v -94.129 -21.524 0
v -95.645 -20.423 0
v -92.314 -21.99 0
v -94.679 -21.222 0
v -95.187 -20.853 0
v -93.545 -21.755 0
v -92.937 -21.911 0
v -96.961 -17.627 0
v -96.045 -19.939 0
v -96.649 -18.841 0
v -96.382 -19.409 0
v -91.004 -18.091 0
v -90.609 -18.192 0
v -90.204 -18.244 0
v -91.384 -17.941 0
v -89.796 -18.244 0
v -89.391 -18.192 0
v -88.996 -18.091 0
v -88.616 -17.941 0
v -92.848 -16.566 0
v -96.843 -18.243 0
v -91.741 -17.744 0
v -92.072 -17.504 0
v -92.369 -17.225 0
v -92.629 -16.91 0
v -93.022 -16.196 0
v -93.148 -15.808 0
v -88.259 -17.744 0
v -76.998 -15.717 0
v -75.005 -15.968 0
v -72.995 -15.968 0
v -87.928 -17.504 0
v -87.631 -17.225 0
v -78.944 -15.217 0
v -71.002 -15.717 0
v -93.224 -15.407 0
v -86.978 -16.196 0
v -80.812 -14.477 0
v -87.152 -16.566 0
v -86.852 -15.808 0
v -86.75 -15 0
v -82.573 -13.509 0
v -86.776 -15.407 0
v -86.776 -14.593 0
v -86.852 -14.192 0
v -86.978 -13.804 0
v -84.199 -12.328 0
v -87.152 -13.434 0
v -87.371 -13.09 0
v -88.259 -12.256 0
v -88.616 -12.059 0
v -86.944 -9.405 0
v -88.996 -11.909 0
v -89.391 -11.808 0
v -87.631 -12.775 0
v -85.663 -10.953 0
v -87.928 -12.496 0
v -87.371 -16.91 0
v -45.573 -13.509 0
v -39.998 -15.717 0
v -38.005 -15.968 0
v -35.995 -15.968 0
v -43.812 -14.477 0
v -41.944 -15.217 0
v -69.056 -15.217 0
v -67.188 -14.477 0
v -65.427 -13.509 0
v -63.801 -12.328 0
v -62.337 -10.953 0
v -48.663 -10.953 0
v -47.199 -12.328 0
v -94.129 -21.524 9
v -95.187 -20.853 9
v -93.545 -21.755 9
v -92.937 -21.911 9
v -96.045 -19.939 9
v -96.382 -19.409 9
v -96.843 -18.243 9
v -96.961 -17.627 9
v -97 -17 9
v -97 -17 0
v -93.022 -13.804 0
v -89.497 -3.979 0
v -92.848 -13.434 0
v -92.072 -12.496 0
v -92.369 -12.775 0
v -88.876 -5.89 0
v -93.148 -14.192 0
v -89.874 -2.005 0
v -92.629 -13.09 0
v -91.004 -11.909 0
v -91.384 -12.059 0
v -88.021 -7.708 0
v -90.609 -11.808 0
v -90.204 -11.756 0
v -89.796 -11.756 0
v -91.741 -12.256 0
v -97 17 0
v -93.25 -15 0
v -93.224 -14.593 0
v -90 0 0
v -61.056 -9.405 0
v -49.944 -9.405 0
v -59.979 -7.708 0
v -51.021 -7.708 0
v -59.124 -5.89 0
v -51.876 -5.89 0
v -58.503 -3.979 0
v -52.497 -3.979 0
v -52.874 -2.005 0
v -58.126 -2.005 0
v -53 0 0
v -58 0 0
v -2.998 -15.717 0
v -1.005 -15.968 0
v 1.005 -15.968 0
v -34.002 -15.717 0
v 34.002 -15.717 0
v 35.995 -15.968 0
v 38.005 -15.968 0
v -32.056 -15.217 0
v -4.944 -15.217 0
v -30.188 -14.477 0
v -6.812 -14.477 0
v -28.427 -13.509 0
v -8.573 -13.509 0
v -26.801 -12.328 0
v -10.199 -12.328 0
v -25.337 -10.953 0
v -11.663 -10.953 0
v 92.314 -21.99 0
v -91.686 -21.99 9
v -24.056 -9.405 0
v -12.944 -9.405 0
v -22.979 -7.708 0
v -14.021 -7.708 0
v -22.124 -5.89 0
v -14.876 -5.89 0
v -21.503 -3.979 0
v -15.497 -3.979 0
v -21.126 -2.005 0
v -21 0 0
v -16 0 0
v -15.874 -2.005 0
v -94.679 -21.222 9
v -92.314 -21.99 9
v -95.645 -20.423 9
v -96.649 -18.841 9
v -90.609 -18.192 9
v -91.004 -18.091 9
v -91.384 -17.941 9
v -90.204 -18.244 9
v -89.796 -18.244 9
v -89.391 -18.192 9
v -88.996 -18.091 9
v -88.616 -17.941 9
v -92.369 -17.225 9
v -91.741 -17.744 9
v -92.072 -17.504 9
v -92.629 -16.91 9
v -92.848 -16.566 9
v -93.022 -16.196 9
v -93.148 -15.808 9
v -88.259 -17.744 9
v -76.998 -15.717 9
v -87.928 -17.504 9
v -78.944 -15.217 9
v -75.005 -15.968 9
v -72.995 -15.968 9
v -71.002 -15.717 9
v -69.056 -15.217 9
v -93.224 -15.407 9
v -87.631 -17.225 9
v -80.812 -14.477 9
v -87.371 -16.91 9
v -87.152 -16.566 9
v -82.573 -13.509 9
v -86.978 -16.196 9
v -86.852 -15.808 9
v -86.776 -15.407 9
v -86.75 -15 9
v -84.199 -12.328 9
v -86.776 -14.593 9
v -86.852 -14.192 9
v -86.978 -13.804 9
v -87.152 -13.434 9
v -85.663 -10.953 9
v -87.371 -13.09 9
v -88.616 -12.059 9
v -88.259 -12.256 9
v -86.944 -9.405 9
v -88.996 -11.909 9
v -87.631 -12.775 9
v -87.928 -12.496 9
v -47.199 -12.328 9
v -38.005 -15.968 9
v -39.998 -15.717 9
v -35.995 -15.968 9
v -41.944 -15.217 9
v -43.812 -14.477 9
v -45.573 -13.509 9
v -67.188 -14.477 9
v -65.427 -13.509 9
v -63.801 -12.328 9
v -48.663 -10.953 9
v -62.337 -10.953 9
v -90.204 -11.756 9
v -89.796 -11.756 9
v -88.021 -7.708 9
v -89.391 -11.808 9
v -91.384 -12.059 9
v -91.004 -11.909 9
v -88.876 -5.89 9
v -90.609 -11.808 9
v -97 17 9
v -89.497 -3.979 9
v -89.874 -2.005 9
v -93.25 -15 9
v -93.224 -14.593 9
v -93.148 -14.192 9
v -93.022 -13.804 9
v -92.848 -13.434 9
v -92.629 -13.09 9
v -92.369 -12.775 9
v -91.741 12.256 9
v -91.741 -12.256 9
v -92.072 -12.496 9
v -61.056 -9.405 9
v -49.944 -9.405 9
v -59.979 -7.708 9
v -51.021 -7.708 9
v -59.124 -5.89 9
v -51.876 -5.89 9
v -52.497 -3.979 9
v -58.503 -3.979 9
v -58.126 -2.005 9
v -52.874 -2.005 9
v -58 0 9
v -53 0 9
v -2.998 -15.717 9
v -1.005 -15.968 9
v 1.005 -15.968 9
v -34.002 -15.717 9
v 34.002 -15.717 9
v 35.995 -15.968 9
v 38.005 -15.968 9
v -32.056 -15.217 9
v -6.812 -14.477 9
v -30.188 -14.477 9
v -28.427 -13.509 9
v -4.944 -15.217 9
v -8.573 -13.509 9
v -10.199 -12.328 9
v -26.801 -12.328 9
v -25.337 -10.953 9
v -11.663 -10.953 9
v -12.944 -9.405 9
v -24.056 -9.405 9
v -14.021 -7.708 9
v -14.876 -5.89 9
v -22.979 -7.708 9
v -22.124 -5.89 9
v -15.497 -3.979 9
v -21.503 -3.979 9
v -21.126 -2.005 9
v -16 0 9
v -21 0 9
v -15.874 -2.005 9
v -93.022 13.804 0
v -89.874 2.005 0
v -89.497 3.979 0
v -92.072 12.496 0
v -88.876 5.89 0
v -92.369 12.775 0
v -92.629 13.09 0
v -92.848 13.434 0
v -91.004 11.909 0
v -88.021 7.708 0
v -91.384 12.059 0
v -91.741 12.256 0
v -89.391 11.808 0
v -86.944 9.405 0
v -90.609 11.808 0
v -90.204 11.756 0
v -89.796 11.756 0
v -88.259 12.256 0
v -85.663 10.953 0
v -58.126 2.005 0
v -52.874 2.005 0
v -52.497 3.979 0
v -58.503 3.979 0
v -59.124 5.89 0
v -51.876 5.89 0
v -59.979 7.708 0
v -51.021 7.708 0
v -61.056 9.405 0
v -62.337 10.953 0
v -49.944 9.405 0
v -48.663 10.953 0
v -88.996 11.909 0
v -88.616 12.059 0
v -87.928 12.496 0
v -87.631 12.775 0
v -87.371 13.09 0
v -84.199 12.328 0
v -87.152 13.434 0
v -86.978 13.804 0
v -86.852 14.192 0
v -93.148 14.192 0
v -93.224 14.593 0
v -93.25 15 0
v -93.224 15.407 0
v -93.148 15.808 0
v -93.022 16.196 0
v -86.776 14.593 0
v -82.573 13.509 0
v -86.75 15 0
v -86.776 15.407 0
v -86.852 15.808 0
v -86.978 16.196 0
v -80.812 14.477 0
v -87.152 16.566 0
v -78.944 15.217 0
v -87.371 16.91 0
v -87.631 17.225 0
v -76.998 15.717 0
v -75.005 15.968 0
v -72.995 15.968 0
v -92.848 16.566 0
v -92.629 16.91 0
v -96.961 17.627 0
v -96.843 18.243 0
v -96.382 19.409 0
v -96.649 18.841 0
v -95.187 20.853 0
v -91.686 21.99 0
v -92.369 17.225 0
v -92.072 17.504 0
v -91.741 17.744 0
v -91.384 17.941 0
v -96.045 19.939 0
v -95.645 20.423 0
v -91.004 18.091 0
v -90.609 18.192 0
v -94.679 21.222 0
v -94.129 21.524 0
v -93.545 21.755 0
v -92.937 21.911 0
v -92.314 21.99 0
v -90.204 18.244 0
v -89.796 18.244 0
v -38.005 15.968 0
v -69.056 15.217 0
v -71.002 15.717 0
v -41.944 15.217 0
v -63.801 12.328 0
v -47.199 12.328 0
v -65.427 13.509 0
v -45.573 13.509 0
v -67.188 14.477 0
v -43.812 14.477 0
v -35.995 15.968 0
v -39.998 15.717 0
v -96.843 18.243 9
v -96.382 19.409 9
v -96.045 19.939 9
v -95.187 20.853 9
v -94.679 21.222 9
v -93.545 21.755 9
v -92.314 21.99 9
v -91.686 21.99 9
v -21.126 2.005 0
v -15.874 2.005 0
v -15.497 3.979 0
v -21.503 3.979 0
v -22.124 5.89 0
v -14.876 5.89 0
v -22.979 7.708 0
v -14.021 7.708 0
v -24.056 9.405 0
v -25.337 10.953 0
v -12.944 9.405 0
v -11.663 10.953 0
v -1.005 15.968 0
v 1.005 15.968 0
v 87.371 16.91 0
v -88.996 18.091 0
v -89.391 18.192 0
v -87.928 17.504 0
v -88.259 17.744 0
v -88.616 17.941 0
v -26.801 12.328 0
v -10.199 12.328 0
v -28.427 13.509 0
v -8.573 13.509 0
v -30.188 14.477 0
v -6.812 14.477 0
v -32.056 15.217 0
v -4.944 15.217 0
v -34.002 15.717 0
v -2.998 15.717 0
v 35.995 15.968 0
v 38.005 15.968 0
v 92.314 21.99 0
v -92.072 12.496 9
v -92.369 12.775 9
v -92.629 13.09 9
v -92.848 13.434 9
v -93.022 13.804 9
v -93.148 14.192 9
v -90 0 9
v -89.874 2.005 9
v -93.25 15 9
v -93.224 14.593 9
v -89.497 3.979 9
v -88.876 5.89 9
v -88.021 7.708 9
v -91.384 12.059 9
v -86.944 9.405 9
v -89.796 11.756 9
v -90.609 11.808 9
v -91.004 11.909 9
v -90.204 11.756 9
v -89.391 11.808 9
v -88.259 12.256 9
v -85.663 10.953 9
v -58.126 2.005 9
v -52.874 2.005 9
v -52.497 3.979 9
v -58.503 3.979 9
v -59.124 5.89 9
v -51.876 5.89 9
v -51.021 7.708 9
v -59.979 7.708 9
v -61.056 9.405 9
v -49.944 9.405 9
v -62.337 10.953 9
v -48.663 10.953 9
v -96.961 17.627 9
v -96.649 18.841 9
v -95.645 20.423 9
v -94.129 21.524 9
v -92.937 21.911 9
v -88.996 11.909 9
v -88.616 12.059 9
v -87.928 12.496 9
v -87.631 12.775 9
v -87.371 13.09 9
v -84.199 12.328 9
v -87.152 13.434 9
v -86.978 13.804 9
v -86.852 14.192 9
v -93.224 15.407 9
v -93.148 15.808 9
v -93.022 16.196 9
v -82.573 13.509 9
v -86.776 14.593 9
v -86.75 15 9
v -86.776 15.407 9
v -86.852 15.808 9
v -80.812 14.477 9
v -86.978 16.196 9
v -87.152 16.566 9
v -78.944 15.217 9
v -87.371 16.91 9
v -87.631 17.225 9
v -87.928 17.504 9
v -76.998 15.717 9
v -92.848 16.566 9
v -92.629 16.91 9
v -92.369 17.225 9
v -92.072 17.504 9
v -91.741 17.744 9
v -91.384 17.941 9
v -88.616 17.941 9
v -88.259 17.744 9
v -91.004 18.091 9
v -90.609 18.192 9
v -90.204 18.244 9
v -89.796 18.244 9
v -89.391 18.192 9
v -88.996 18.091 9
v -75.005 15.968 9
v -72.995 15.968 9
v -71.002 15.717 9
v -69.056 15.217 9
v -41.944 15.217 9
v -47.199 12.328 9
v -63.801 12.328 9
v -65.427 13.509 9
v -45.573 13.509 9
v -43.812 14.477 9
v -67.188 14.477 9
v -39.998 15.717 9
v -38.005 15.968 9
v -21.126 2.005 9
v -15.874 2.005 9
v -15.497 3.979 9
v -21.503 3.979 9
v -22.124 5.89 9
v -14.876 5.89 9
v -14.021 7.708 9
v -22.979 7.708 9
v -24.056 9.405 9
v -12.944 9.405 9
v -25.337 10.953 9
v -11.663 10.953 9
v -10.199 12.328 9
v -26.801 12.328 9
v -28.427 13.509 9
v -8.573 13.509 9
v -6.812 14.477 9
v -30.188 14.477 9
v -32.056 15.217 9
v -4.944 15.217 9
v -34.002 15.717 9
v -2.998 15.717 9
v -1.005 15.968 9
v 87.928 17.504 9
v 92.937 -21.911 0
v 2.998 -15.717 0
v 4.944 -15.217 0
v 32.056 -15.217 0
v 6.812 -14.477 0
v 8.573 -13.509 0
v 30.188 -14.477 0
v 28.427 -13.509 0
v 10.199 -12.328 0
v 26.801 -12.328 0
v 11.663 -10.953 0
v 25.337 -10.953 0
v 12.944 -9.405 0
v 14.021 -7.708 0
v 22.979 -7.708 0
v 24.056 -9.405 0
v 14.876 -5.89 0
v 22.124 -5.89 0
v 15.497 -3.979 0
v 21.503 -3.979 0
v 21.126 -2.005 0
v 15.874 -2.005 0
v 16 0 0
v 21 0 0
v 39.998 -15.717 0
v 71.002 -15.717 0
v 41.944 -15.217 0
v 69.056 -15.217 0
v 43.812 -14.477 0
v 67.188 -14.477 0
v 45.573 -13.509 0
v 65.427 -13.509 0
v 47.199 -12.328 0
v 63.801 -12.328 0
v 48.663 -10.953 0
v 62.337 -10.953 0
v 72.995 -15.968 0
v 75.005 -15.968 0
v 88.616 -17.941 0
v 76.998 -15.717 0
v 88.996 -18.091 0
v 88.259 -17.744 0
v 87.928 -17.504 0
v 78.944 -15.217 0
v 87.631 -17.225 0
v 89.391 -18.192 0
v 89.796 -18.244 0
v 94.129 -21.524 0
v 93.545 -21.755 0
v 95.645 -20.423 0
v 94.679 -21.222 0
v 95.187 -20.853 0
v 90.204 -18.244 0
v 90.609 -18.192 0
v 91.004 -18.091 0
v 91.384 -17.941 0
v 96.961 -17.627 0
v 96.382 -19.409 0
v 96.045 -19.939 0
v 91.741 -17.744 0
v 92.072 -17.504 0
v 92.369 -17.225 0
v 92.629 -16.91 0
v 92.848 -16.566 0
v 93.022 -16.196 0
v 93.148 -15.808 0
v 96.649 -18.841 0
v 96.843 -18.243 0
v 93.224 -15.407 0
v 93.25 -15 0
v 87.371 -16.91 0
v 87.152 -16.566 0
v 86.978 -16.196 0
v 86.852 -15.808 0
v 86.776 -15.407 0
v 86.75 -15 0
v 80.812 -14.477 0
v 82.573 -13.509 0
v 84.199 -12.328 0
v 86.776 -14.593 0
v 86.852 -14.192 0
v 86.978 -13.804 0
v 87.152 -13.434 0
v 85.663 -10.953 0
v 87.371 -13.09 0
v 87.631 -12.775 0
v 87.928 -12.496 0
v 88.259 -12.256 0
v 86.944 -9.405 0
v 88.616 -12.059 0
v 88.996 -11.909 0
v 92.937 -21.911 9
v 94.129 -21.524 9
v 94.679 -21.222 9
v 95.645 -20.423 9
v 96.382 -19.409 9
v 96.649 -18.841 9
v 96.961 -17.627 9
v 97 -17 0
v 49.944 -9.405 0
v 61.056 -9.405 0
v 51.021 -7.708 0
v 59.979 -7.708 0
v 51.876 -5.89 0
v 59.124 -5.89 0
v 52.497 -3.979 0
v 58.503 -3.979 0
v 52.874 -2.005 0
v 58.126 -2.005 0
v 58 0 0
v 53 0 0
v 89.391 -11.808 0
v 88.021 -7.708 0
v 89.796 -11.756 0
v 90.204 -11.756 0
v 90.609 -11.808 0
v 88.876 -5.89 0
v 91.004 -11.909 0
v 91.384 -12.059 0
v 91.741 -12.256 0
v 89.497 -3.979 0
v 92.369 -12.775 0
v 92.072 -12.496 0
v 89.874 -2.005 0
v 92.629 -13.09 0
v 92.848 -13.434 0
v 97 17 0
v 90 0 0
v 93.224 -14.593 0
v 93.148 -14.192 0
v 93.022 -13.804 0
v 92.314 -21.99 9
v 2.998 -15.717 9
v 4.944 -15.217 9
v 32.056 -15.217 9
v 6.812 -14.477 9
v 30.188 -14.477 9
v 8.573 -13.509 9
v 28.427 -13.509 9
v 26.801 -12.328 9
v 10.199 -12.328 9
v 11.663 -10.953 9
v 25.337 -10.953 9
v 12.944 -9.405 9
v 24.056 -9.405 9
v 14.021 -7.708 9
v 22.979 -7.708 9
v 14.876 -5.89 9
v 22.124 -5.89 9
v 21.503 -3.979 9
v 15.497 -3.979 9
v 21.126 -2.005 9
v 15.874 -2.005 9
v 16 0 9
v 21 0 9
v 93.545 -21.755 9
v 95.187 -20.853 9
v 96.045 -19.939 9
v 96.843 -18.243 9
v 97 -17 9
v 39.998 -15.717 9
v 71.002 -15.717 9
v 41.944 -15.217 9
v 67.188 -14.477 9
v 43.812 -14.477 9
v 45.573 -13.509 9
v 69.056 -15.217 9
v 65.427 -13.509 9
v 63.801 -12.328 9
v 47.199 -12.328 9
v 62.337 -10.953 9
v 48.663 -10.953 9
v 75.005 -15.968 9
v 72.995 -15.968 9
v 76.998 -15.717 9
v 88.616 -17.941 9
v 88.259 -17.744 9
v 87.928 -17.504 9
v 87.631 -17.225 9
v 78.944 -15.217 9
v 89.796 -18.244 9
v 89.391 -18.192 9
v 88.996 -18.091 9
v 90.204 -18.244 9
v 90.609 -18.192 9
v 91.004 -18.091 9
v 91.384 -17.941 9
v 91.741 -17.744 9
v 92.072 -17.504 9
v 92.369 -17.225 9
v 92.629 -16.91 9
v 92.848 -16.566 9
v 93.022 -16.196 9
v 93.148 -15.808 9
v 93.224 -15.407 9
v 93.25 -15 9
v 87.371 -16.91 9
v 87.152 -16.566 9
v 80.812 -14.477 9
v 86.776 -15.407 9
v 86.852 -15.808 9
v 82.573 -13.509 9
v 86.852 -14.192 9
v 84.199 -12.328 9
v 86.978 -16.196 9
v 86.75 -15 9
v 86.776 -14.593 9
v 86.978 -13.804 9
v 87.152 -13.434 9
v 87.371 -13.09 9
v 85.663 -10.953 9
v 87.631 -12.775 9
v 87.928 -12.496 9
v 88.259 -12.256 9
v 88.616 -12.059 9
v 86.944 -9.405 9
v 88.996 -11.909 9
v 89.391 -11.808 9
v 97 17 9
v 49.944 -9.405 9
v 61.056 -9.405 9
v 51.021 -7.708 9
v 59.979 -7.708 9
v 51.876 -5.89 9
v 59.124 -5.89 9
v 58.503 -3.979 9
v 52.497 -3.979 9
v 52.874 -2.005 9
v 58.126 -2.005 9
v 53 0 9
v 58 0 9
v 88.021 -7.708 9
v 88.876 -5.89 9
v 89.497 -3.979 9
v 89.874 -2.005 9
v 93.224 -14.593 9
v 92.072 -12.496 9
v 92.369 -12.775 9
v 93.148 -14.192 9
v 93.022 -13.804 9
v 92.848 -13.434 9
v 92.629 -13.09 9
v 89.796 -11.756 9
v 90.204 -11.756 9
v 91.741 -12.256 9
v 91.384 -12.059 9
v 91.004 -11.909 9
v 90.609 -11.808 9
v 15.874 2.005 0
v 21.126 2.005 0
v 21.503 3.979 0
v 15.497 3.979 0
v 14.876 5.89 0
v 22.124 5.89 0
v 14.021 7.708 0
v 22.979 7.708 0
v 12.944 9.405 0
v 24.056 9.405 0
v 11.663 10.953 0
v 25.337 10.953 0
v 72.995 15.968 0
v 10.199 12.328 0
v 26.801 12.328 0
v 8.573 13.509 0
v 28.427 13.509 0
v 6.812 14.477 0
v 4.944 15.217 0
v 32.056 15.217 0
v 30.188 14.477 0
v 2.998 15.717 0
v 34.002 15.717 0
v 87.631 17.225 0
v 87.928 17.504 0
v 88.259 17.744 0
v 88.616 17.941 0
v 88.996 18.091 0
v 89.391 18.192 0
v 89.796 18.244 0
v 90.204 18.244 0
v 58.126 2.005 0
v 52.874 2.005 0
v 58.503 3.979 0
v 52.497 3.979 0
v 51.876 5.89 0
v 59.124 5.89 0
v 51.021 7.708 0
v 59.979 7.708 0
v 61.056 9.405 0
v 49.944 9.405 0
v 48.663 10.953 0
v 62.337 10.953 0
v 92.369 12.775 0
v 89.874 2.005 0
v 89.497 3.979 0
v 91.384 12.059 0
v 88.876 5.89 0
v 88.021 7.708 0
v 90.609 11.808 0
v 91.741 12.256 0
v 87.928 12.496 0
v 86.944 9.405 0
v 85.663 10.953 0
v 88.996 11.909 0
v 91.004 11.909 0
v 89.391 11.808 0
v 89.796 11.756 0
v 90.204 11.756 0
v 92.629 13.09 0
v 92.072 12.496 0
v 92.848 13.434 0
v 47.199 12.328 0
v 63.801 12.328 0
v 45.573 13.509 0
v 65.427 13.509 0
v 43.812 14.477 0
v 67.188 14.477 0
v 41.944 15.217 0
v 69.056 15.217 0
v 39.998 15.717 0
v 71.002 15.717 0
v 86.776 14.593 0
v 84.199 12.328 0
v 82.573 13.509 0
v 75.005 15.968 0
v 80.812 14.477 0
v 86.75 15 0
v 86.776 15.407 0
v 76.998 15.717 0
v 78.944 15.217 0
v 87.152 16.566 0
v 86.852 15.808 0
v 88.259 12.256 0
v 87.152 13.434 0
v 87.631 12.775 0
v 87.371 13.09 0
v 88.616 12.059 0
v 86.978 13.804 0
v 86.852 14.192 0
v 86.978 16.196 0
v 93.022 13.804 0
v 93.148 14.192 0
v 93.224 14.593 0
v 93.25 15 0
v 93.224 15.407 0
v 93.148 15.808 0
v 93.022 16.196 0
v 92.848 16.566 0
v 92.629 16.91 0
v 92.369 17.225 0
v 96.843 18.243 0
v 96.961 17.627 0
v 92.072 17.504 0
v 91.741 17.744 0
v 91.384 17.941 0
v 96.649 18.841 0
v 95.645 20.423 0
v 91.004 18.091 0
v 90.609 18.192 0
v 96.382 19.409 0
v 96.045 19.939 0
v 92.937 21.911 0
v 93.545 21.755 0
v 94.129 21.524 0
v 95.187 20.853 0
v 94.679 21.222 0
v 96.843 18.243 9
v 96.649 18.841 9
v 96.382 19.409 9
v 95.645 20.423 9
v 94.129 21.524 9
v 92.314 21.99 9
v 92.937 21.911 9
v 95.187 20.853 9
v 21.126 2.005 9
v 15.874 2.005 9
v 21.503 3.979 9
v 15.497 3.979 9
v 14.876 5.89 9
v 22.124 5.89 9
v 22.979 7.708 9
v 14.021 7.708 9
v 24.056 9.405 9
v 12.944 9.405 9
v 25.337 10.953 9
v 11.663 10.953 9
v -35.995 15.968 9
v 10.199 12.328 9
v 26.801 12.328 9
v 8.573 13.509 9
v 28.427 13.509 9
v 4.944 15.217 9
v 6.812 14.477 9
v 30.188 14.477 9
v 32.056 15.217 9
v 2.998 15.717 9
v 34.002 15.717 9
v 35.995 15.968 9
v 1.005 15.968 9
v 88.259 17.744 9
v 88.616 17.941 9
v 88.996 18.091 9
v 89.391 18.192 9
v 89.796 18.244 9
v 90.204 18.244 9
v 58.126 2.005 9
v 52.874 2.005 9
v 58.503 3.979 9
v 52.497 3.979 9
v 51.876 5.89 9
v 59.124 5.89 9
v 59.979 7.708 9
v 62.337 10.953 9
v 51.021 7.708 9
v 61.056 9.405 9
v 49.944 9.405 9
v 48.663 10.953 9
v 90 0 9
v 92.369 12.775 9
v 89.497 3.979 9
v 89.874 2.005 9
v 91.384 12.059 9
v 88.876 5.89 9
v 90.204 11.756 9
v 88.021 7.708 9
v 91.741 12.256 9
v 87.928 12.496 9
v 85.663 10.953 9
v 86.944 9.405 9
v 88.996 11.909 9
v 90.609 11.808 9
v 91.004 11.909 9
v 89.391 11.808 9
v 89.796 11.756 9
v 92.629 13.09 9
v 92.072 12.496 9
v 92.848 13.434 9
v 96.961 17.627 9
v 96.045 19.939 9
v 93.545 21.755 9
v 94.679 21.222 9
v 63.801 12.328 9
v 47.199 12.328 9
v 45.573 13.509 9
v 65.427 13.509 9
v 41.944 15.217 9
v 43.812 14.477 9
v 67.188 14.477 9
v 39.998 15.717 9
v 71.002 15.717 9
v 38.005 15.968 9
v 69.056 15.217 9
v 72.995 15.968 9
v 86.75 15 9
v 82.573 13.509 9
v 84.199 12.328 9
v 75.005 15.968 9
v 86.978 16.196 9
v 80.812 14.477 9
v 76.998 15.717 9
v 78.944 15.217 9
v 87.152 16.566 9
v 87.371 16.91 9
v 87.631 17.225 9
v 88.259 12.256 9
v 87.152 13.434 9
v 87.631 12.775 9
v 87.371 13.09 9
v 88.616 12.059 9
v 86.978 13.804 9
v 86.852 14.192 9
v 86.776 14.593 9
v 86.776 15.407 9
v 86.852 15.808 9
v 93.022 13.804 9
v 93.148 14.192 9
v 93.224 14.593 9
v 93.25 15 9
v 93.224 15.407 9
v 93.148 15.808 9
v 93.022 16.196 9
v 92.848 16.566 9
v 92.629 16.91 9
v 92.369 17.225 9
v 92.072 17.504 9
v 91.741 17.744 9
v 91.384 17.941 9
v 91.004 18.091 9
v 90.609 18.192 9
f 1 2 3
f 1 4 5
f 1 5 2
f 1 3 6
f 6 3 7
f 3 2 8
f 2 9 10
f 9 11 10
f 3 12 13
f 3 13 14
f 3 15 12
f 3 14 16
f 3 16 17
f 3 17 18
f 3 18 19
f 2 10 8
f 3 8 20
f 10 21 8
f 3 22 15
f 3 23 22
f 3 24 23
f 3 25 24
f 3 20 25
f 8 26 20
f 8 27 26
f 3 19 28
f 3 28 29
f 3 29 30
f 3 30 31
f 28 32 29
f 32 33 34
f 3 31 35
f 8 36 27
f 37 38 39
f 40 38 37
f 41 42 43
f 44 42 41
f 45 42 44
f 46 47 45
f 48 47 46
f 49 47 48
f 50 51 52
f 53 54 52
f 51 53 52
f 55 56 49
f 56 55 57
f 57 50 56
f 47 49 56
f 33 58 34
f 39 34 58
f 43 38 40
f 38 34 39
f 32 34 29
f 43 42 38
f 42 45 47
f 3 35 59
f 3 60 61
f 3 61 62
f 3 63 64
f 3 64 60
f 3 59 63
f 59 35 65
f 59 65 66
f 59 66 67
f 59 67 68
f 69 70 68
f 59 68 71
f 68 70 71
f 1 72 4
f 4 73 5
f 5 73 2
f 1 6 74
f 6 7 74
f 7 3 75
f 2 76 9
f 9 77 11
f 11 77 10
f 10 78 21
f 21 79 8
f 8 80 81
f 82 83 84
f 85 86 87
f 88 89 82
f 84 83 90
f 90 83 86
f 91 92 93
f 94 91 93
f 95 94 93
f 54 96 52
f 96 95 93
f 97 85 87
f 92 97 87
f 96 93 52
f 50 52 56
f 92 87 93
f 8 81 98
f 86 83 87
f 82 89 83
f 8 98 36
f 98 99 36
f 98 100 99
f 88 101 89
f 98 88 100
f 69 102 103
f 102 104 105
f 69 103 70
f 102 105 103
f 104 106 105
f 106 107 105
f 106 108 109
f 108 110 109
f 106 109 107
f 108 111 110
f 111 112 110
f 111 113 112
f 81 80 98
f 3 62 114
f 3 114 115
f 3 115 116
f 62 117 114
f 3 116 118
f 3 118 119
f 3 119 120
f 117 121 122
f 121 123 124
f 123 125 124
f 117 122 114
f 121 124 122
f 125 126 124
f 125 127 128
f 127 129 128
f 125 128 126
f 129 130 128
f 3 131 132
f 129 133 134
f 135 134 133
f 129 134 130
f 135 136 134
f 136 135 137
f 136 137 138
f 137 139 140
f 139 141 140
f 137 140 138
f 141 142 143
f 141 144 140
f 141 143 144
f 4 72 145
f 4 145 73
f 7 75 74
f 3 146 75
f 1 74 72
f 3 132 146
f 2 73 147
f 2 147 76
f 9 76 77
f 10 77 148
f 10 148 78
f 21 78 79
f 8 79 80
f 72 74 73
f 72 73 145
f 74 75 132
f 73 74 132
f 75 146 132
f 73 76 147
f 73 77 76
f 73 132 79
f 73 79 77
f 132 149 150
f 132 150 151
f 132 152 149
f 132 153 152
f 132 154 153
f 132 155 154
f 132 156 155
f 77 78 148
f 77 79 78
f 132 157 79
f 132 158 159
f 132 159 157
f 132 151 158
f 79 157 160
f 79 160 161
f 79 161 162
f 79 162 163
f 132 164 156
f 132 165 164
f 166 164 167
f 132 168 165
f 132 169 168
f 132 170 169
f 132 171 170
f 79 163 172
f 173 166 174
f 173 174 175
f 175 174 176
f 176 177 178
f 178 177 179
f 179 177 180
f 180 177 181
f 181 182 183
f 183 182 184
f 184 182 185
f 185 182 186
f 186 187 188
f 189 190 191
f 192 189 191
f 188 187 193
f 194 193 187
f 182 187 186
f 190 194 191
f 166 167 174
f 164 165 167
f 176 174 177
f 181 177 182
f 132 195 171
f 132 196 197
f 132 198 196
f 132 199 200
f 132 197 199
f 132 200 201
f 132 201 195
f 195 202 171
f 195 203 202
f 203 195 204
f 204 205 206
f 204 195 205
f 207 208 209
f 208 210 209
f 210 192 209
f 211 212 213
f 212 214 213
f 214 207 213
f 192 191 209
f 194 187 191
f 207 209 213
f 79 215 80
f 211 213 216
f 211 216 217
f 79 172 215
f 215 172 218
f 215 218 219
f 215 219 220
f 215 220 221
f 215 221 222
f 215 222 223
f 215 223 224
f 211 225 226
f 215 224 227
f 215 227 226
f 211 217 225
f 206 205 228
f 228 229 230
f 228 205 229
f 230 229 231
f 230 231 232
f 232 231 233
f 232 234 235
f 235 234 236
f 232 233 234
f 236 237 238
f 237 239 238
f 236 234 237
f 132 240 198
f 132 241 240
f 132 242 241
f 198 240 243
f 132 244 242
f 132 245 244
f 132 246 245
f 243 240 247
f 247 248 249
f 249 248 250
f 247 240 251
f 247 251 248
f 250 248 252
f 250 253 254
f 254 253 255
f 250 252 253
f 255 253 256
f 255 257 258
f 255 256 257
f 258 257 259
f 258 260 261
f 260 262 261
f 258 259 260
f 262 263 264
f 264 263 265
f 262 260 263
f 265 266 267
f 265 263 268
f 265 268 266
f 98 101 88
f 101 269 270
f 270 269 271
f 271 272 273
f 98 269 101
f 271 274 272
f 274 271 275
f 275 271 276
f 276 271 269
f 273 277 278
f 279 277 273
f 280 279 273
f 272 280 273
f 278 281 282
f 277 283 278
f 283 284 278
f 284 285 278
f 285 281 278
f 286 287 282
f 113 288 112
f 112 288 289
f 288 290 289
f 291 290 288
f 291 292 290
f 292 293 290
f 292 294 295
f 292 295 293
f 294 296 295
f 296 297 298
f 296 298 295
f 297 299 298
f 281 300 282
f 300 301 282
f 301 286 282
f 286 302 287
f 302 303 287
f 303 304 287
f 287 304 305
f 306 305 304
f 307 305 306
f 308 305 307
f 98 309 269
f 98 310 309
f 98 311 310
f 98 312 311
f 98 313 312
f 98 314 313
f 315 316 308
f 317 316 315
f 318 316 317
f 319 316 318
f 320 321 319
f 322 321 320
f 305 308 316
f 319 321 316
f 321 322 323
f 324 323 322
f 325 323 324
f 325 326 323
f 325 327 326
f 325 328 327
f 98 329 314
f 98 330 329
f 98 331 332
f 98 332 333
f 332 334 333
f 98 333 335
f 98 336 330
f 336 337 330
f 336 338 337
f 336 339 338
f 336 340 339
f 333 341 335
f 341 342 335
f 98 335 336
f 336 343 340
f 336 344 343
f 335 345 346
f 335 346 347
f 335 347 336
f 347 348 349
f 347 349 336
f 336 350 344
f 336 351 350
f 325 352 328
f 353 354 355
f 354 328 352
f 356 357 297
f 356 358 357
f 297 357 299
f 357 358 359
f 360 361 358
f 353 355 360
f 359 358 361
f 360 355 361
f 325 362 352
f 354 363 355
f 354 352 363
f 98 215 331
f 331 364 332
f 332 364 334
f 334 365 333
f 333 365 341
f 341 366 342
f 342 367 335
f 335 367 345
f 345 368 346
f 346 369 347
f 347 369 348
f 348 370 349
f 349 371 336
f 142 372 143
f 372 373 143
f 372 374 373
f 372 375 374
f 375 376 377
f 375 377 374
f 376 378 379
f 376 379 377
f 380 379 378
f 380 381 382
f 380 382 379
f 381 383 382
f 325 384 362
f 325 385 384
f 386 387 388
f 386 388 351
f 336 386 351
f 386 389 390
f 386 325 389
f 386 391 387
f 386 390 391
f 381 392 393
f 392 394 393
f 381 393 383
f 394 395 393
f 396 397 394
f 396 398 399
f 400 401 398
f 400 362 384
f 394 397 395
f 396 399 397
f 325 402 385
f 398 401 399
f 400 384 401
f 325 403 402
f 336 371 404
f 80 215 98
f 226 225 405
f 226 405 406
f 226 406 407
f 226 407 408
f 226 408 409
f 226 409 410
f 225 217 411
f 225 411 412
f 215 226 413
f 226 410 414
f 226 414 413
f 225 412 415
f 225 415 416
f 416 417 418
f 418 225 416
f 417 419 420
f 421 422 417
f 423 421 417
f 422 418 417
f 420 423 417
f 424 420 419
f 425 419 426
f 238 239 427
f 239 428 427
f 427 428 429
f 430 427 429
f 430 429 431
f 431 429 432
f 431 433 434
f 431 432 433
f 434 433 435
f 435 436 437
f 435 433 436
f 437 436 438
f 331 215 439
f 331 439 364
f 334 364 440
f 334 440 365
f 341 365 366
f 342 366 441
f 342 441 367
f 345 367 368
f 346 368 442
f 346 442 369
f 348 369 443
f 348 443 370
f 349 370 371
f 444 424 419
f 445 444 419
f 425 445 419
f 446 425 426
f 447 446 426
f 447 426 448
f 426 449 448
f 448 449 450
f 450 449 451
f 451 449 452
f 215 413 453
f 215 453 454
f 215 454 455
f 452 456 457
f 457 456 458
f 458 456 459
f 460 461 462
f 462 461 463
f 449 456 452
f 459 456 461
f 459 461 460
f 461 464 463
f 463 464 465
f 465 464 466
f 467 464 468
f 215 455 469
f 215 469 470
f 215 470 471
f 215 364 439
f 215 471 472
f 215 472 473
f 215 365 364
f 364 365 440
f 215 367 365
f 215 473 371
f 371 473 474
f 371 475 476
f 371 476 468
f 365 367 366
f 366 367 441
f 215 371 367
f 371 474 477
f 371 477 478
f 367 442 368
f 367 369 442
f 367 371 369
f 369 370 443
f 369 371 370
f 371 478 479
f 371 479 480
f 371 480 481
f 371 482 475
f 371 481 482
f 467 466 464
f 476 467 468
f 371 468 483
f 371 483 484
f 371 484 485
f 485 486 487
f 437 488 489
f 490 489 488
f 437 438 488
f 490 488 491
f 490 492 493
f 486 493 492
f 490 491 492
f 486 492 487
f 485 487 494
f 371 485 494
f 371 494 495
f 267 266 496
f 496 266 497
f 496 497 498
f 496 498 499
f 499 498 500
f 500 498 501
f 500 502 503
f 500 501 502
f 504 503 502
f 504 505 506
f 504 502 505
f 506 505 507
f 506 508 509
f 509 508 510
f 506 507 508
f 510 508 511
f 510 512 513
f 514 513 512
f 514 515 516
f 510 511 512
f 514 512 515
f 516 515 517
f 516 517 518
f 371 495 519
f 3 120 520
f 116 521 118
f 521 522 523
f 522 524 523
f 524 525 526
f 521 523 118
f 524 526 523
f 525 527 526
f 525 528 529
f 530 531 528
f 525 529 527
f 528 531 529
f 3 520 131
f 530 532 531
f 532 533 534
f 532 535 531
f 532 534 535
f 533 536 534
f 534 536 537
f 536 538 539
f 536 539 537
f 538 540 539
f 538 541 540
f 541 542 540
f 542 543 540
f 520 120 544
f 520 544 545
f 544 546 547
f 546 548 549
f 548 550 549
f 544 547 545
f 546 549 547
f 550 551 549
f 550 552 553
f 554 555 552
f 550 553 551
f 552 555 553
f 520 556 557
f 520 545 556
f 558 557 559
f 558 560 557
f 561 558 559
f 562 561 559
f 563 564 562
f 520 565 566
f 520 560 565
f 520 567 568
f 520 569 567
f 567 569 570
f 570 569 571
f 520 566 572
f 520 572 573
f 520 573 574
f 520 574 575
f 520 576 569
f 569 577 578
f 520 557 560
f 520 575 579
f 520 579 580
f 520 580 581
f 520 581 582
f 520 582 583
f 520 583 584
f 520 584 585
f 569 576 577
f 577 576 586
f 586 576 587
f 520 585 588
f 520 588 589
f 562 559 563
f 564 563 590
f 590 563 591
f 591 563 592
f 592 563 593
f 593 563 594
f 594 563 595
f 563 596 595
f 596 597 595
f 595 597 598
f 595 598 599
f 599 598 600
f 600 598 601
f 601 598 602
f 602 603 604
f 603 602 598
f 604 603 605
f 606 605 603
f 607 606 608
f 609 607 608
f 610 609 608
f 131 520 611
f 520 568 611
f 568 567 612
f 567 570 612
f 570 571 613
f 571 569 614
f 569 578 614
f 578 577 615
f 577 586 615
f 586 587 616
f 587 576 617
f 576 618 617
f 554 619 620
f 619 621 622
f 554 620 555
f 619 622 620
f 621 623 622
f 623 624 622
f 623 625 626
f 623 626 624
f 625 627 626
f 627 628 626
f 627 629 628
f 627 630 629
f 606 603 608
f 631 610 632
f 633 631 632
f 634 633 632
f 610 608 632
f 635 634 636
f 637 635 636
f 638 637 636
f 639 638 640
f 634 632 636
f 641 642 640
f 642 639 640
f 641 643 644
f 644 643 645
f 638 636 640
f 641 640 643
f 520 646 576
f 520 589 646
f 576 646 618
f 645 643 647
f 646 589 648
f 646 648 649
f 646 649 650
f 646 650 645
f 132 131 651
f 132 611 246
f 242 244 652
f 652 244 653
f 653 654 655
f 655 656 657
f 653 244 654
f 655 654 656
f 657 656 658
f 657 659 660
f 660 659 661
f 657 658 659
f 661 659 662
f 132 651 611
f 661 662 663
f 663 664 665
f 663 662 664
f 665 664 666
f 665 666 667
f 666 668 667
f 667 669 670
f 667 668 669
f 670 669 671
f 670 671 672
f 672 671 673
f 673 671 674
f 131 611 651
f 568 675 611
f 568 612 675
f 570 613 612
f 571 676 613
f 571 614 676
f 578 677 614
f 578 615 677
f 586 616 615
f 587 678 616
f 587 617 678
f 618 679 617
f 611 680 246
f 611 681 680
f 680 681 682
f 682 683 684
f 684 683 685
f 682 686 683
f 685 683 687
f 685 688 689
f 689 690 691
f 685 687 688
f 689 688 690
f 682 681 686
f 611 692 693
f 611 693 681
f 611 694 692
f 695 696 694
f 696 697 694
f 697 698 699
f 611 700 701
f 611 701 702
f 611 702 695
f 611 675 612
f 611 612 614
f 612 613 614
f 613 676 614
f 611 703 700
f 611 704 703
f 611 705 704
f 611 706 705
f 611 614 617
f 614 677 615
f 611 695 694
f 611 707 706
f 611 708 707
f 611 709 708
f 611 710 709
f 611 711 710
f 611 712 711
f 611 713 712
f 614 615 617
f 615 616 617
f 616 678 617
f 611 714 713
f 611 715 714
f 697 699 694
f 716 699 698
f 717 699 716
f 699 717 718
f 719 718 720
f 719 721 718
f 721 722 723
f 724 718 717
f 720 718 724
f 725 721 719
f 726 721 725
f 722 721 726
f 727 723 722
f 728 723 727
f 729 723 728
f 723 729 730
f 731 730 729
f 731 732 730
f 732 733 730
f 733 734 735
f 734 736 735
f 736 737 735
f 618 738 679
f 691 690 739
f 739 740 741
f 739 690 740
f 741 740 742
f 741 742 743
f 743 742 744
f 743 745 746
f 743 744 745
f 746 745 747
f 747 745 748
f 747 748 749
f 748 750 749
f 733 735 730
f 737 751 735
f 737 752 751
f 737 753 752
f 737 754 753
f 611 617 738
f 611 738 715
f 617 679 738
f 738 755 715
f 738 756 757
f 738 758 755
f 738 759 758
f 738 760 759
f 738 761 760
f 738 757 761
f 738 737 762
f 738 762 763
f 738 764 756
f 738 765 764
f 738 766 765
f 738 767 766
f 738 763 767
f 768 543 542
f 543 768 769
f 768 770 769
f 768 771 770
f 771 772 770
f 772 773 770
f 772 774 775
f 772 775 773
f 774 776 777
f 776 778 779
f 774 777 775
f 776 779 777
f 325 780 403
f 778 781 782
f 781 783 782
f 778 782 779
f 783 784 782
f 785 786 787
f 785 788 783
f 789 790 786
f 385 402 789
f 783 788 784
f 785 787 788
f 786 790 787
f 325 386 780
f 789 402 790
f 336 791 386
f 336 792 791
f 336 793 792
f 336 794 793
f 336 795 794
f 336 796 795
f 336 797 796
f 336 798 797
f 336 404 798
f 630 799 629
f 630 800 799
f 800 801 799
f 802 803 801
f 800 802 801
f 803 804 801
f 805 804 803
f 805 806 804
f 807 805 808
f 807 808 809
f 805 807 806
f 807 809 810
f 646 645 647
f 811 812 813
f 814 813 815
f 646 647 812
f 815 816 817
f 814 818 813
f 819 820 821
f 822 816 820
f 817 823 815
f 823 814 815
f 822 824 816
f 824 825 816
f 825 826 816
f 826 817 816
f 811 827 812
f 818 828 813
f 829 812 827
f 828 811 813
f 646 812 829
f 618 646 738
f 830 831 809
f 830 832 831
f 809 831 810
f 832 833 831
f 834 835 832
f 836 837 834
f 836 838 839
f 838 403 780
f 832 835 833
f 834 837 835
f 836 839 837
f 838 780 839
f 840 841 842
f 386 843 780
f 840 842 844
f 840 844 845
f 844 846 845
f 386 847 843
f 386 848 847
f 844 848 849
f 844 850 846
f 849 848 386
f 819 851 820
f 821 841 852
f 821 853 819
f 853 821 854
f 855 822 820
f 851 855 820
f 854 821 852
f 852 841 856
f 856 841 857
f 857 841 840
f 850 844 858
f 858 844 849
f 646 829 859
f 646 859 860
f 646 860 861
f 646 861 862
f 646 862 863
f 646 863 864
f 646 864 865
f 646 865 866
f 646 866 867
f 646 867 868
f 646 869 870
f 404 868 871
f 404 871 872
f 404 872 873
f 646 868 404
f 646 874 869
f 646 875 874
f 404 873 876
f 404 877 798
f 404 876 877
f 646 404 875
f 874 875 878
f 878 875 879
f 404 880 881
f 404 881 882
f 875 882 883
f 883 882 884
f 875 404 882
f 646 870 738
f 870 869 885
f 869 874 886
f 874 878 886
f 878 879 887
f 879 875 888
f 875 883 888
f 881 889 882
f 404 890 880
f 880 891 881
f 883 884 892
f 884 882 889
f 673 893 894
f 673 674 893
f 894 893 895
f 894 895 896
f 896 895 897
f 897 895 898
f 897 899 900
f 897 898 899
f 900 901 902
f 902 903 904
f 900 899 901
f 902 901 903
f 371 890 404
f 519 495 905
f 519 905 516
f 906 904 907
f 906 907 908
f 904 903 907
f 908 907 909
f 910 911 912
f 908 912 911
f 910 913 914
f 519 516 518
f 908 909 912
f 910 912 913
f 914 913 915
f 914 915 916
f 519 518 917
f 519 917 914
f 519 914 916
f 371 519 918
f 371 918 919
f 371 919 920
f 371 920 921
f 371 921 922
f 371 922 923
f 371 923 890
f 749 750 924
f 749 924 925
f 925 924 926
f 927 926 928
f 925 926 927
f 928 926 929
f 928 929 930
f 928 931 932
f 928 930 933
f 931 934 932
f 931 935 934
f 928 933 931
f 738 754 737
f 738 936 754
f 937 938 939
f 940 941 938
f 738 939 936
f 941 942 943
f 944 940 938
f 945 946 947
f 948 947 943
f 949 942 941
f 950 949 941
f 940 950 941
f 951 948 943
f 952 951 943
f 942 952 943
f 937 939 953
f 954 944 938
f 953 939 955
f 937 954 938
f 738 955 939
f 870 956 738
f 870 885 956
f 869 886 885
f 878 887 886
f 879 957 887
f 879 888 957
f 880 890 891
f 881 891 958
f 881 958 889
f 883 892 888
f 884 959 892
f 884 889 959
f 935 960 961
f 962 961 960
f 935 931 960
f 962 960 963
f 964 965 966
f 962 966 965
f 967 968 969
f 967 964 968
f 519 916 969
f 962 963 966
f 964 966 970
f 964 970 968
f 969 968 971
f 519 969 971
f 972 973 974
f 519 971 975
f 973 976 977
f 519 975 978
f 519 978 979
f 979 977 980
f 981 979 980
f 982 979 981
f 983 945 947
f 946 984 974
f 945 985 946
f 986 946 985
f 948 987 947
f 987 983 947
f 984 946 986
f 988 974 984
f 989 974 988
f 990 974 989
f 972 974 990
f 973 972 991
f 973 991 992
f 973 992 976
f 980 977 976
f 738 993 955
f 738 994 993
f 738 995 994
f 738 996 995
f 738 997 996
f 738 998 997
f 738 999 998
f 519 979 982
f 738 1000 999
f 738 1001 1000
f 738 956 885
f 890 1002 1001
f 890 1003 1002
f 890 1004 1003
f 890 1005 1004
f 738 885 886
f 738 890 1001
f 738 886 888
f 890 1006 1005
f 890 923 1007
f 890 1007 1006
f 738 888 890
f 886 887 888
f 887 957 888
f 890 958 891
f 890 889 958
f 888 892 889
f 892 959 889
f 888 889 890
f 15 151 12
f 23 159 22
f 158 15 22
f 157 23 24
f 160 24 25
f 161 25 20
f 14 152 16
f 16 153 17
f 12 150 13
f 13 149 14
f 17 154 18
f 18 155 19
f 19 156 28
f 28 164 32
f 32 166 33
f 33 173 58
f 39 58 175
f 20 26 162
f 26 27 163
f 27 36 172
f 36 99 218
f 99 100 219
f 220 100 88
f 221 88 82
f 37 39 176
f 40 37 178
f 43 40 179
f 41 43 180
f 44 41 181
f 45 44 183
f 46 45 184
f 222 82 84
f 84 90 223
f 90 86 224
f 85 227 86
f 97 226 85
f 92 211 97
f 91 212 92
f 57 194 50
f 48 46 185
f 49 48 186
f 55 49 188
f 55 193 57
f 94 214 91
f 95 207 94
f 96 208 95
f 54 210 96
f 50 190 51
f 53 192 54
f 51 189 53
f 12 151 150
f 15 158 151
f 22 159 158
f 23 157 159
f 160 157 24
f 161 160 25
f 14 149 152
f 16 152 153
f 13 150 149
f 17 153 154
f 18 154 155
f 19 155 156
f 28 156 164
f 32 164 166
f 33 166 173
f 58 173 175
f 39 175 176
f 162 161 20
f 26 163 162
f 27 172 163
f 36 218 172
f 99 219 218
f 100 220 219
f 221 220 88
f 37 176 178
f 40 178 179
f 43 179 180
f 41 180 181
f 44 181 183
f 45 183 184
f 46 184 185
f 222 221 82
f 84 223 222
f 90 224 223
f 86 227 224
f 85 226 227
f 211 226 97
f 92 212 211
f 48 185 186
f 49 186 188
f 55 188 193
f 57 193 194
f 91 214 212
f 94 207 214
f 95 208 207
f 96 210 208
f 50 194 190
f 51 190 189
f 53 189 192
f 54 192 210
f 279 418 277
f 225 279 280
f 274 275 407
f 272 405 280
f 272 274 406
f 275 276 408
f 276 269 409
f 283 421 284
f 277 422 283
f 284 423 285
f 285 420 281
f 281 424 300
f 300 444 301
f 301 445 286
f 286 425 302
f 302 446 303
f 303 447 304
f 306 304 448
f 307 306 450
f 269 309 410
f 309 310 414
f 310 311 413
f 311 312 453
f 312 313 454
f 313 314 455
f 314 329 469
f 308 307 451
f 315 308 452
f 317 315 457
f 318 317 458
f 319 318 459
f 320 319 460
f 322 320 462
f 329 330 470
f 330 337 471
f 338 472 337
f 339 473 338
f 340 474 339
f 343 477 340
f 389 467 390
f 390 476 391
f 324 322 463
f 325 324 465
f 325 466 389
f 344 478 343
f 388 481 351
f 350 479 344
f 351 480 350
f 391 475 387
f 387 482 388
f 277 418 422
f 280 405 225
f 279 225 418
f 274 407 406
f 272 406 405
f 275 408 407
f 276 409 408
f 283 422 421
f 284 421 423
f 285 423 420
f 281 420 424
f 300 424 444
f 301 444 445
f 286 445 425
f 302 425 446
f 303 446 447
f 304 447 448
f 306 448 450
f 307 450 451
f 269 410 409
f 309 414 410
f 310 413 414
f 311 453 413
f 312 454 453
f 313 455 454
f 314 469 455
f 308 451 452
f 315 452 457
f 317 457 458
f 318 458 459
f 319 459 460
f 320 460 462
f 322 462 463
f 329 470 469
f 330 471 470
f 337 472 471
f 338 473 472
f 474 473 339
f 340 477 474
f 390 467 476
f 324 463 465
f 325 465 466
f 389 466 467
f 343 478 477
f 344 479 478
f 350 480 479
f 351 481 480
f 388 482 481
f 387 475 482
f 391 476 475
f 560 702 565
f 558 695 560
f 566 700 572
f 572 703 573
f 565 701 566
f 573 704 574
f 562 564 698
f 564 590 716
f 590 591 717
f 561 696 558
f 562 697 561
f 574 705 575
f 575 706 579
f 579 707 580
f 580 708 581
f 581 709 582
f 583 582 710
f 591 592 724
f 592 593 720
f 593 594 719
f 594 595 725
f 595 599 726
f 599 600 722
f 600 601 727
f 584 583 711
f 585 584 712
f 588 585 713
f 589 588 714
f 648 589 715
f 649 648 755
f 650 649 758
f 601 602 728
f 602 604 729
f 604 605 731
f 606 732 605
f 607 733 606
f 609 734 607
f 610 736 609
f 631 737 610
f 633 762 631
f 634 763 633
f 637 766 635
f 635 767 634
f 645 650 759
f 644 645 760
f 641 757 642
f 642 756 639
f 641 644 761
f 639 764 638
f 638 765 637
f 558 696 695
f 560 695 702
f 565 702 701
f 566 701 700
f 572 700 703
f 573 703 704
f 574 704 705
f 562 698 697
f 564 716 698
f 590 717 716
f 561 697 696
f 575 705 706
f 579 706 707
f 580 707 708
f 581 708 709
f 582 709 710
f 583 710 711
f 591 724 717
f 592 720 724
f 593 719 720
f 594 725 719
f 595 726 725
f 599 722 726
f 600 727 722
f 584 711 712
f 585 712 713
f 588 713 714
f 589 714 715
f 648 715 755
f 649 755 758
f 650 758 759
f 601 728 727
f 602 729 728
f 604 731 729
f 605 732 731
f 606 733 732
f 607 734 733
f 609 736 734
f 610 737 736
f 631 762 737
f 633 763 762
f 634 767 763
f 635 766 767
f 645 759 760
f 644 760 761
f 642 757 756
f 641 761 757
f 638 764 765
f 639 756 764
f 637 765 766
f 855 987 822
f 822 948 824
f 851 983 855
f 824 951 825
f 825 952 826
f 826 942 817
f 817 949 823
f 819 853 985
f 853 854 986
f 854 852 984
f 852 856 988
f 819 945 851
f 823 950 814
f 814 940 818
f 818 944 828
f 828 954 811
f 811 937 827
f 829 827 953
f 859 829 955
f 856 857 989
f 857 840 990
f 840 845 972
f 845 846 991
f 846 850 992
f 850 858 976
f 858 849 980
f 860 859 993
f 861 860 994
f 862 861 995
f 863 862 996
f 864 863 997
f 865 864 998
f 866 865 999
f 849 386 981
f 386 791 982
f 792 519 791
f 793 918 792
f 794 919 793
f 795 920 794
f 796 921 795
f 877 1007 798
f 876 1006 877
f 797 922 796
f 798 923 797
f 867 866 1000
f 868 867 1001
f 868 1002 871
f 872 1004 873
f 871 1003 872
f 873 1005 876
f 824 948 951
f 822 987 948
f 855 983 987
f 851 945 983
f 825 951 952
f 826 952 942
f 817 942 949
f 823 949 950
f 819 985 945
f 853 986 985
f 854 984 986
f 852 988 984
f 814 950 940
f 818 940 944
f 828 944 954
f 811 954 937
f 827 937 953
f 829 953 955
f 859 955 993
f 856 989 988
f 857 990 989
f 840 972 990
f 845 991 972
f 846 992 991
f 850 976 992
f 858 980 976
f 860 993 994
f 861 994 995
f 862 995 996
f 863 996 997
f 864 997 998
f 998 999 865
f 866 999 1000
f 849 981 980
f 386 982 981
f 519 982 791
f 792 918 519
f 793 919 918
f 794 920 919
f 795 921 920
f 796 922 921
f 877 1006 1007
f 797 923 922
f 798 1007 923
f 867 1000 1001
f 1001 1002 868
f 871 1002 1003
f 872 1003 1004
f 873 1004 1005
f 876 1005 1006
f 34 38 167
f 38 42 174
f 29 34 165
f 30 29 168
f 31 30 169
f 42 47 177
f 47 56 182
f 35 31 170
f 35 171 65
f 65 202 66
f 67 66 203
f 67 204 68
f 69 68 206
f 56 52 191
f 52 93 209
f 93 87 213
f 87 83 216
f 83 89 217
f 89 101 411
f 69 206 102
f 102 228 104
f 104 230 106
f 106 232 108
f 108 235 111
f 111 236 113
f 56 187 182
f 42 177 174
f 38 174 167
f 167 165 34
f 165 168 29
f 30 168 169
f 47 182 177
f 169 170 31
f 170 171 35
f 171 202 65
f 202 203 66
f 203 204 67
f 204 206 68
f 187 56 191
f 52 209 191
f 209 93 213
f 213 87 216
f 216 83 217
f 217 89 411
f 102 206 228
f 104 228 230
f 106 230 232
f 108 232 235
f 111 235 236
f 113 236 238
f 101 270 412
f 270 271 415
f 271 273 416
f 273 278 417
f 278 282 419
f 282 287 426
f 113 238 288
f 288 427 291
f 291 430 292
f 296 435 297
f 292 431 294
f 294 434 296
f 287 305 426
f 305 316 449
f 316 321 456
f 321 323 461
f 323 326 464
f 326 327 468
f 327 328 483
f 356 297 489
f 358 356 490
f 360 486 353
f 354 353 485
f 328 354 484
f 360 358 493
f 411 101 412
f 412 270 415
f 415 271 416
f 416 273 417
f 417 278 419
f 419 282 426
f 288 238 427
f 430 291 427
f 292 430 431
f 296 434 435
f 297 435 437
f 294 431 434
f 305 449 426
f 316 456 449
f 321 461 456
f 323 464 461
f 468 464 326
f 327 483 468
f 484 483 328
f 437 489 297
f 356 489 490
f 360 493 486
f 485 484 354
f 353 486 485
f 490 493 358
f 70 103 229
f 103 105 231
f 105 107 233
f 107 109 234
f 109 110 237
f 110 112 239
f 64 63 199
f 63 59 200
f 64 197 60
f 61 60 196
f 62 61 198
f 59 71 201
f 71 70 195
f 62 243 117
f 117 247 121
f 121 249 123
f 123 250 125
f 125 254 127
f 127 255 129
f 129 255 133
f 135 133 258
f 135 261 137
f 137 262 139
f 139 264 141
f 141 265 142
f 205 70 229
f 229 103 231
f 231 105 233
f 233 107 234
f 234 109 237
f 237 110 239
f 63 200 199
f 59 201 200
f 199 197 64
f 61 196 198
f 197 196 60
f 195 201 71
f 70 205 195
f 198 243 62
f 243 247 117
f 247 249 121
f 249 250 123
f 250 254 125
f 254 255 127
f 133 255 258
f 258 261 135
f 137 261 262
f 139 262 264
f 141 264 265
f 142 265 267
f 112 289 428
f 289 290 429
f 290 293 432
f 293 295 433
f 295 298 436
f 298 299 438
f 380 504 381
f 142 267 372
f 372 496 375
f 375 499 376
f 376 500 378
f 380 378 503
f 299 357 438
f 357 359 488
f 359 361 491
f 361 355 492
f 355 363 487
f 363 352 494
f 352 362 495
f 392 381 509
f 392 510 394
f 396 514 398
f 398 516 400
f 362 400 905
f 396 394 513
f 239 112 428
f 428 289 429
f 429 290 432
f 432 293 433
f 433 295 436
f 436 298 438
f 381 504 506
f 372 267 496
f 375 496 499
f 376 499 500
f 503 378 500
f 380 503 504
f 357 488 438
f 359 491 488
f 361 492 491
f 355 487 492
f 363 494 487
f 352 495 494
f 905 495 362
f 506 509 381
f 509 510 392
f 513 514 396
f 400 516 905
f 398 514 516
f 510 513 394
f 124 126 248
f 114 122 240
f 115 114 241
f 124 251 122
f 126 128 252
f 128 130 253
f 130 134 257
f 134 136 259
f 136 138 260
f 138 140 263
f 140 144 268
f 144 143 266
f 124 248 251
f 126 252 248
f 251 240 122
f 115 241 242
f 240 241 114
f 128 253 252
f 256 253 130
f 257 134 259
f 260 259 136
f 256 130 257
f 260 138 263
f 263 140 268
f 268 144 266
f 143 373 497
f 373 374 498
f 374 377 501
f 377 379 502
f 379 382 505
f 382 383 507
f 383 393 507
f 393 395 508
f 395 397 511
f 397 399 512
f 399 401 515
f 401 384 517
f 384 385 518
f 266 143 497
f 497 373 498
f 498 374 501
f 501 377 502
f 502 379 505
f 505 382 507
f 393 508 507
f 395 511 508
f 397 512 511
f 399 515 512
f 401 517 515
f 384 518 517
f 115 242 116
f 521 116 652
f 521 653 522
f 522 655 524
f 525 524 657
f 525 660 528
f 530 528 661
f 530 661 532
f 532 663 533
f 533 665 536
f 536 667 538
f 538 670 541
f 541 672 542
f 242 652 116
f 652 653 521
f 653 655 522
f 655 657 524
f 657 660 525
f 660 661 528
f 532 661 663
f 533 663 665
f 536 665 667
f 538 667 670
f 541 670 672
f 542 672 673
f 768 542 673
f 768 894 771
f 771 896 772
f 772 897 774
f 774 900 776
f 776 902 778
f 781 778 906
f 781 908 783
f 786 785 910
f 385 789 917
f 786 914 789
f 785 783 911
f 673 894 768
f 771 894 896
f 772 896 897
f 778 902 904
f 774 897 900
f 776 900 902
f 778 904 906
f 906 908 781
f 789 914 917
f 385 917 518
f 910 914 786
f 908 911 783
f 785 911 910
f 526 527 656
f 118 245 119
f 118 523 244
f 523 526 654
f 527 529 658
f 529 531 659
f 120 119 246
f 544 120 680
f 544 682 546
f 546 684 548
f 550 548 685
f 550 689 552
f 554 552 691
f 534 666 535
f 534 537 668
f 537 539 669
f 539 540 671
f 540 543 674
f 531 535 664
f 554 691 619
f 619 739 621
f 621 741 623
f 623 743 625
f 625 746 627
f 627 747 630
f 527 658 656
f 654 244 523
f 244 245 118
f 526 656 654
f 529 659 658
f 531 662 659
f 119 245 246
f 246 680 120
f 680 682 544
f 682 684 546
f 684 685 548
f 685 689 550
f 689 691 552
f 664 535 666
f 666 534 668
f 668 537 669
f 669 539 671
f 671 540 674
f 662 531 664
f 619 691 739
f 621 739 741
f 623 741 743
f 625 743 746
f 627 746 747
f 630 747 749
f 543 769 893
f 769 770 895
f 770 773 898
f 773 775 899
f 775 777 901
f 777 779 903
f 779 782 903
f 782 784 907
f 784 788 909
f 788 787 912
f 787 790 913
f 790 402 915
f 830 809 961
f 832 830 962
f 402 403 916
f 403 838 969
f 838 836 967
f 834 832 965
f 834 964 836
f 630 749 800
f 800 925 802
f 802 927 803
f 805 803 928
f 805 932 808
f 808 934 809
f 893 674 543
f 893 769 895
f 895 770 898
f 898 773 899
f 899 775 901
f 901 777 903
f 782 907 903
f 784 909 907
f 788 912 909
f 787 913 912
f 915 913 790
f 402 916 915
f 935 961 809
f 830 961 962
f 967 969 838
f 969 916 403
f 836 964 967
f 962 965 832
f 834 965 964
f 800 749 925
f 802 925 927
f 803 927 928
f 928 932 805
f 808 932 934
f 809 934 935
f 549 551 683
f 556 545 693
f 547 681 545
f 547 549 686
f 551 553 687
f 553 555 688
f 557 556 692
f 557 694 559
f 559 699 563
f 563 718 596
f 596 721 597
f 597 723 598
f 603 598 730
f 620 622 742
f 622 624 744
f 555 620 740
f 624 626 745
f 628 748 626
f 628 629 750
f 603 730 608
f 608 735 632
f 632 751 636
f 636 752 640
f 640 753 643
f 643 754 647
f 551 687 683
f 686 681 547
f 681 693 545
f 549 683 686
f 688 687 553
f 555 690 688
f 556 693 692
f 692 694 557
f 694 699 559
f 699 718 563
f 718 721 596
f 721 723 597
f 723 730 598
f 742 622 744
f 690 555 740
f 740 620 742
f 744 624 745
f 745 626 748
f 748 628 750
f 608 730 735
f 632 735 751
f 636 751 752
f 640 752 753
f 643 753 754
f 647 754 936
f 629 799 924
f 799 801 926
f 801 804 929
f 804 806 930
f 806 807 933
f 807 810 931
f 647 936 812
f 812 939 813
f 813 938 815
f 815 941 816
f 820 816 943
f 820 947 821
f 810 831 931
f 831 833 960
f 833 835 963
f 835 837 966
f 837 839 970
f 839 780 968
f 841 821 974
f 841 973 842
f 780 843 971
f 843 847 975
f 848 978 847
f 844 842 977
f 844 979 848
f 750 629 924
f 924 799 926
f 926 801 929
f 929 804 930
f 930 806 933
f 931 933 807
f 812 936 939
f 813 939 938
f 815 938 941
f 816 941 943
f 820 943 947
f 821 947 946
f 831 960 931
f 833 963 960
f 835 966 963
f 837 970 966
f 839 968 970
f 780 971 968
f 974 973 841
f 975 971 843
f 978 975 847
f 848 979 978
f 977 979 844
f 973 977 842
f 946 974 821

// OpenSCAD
$fn = 50;

difference() {
	union() {
		hull() {
			translate(v = [-92.0, 17.0, 0]) {
				cylinder(h = 9, r = 5);
			}
			translate(v = [92.0, 17.0, 0]) {
				cylinder(h = 9, r = 5);
			}
			translate(v = [-92.0, -17.0, 0]) {
				cylinder(h = 9, r = 5);
			}
			translate(v = [92.0, -17.0, 0]) {
				cylinder(h = 9, r = 5);
			}
		}
	}
	union() {
		translate(v = [-90.0, -15.0, -100.0]) {
			cylinder(h = 200, r = 3.25);
		}
		translate(v = [-90.0, 15.0, -100.0]) {
			cylinder(h = 200, r = 3.25);
		}
		translate(v = [90.0, -15.0, -100.0]) {
			cylinder(h = 200, r = 3.25);
		}
		translate(v = [90.0, 15.0, -100.0]) {
			cylinder(h = 200, r = 3.25);
		}
		translate(v = [-90.0, -15.0, -100.0]) {
			cylinder(h = 200, r = 1.8);
		}
		translate(v = [-90.0, 15.0, -100.0]) {
			cylinder(h = 200, r = 1.8);
		}
		translate(v = [90.0, -15.0, -100.0]) {
			cylinder(h = 200, r = 1.8);
		}
		translate(v = [90.0, 15.0, -100.0]) {
			cylinder(h = 200, r = 1.8);
		}
		translate(v = [-74.0, 0, 0.0]) {
			cylinder(h = 9, r = 16.0);
		}
		translate(v = [-37.0, 0, 0.0]) {
			cylinder(h = 9, r = 16.0);
		}
		cylinder(h = 9, r = 16.0);
		translate(v = [37.0, 0, 0.0]) {
			cylinder(h = 9, r = 16.0);
		}
		translate(v = [74.0, 0, 0.0]) {
			cylinder(h = 9, r = 16.0);
		}
	}
}
